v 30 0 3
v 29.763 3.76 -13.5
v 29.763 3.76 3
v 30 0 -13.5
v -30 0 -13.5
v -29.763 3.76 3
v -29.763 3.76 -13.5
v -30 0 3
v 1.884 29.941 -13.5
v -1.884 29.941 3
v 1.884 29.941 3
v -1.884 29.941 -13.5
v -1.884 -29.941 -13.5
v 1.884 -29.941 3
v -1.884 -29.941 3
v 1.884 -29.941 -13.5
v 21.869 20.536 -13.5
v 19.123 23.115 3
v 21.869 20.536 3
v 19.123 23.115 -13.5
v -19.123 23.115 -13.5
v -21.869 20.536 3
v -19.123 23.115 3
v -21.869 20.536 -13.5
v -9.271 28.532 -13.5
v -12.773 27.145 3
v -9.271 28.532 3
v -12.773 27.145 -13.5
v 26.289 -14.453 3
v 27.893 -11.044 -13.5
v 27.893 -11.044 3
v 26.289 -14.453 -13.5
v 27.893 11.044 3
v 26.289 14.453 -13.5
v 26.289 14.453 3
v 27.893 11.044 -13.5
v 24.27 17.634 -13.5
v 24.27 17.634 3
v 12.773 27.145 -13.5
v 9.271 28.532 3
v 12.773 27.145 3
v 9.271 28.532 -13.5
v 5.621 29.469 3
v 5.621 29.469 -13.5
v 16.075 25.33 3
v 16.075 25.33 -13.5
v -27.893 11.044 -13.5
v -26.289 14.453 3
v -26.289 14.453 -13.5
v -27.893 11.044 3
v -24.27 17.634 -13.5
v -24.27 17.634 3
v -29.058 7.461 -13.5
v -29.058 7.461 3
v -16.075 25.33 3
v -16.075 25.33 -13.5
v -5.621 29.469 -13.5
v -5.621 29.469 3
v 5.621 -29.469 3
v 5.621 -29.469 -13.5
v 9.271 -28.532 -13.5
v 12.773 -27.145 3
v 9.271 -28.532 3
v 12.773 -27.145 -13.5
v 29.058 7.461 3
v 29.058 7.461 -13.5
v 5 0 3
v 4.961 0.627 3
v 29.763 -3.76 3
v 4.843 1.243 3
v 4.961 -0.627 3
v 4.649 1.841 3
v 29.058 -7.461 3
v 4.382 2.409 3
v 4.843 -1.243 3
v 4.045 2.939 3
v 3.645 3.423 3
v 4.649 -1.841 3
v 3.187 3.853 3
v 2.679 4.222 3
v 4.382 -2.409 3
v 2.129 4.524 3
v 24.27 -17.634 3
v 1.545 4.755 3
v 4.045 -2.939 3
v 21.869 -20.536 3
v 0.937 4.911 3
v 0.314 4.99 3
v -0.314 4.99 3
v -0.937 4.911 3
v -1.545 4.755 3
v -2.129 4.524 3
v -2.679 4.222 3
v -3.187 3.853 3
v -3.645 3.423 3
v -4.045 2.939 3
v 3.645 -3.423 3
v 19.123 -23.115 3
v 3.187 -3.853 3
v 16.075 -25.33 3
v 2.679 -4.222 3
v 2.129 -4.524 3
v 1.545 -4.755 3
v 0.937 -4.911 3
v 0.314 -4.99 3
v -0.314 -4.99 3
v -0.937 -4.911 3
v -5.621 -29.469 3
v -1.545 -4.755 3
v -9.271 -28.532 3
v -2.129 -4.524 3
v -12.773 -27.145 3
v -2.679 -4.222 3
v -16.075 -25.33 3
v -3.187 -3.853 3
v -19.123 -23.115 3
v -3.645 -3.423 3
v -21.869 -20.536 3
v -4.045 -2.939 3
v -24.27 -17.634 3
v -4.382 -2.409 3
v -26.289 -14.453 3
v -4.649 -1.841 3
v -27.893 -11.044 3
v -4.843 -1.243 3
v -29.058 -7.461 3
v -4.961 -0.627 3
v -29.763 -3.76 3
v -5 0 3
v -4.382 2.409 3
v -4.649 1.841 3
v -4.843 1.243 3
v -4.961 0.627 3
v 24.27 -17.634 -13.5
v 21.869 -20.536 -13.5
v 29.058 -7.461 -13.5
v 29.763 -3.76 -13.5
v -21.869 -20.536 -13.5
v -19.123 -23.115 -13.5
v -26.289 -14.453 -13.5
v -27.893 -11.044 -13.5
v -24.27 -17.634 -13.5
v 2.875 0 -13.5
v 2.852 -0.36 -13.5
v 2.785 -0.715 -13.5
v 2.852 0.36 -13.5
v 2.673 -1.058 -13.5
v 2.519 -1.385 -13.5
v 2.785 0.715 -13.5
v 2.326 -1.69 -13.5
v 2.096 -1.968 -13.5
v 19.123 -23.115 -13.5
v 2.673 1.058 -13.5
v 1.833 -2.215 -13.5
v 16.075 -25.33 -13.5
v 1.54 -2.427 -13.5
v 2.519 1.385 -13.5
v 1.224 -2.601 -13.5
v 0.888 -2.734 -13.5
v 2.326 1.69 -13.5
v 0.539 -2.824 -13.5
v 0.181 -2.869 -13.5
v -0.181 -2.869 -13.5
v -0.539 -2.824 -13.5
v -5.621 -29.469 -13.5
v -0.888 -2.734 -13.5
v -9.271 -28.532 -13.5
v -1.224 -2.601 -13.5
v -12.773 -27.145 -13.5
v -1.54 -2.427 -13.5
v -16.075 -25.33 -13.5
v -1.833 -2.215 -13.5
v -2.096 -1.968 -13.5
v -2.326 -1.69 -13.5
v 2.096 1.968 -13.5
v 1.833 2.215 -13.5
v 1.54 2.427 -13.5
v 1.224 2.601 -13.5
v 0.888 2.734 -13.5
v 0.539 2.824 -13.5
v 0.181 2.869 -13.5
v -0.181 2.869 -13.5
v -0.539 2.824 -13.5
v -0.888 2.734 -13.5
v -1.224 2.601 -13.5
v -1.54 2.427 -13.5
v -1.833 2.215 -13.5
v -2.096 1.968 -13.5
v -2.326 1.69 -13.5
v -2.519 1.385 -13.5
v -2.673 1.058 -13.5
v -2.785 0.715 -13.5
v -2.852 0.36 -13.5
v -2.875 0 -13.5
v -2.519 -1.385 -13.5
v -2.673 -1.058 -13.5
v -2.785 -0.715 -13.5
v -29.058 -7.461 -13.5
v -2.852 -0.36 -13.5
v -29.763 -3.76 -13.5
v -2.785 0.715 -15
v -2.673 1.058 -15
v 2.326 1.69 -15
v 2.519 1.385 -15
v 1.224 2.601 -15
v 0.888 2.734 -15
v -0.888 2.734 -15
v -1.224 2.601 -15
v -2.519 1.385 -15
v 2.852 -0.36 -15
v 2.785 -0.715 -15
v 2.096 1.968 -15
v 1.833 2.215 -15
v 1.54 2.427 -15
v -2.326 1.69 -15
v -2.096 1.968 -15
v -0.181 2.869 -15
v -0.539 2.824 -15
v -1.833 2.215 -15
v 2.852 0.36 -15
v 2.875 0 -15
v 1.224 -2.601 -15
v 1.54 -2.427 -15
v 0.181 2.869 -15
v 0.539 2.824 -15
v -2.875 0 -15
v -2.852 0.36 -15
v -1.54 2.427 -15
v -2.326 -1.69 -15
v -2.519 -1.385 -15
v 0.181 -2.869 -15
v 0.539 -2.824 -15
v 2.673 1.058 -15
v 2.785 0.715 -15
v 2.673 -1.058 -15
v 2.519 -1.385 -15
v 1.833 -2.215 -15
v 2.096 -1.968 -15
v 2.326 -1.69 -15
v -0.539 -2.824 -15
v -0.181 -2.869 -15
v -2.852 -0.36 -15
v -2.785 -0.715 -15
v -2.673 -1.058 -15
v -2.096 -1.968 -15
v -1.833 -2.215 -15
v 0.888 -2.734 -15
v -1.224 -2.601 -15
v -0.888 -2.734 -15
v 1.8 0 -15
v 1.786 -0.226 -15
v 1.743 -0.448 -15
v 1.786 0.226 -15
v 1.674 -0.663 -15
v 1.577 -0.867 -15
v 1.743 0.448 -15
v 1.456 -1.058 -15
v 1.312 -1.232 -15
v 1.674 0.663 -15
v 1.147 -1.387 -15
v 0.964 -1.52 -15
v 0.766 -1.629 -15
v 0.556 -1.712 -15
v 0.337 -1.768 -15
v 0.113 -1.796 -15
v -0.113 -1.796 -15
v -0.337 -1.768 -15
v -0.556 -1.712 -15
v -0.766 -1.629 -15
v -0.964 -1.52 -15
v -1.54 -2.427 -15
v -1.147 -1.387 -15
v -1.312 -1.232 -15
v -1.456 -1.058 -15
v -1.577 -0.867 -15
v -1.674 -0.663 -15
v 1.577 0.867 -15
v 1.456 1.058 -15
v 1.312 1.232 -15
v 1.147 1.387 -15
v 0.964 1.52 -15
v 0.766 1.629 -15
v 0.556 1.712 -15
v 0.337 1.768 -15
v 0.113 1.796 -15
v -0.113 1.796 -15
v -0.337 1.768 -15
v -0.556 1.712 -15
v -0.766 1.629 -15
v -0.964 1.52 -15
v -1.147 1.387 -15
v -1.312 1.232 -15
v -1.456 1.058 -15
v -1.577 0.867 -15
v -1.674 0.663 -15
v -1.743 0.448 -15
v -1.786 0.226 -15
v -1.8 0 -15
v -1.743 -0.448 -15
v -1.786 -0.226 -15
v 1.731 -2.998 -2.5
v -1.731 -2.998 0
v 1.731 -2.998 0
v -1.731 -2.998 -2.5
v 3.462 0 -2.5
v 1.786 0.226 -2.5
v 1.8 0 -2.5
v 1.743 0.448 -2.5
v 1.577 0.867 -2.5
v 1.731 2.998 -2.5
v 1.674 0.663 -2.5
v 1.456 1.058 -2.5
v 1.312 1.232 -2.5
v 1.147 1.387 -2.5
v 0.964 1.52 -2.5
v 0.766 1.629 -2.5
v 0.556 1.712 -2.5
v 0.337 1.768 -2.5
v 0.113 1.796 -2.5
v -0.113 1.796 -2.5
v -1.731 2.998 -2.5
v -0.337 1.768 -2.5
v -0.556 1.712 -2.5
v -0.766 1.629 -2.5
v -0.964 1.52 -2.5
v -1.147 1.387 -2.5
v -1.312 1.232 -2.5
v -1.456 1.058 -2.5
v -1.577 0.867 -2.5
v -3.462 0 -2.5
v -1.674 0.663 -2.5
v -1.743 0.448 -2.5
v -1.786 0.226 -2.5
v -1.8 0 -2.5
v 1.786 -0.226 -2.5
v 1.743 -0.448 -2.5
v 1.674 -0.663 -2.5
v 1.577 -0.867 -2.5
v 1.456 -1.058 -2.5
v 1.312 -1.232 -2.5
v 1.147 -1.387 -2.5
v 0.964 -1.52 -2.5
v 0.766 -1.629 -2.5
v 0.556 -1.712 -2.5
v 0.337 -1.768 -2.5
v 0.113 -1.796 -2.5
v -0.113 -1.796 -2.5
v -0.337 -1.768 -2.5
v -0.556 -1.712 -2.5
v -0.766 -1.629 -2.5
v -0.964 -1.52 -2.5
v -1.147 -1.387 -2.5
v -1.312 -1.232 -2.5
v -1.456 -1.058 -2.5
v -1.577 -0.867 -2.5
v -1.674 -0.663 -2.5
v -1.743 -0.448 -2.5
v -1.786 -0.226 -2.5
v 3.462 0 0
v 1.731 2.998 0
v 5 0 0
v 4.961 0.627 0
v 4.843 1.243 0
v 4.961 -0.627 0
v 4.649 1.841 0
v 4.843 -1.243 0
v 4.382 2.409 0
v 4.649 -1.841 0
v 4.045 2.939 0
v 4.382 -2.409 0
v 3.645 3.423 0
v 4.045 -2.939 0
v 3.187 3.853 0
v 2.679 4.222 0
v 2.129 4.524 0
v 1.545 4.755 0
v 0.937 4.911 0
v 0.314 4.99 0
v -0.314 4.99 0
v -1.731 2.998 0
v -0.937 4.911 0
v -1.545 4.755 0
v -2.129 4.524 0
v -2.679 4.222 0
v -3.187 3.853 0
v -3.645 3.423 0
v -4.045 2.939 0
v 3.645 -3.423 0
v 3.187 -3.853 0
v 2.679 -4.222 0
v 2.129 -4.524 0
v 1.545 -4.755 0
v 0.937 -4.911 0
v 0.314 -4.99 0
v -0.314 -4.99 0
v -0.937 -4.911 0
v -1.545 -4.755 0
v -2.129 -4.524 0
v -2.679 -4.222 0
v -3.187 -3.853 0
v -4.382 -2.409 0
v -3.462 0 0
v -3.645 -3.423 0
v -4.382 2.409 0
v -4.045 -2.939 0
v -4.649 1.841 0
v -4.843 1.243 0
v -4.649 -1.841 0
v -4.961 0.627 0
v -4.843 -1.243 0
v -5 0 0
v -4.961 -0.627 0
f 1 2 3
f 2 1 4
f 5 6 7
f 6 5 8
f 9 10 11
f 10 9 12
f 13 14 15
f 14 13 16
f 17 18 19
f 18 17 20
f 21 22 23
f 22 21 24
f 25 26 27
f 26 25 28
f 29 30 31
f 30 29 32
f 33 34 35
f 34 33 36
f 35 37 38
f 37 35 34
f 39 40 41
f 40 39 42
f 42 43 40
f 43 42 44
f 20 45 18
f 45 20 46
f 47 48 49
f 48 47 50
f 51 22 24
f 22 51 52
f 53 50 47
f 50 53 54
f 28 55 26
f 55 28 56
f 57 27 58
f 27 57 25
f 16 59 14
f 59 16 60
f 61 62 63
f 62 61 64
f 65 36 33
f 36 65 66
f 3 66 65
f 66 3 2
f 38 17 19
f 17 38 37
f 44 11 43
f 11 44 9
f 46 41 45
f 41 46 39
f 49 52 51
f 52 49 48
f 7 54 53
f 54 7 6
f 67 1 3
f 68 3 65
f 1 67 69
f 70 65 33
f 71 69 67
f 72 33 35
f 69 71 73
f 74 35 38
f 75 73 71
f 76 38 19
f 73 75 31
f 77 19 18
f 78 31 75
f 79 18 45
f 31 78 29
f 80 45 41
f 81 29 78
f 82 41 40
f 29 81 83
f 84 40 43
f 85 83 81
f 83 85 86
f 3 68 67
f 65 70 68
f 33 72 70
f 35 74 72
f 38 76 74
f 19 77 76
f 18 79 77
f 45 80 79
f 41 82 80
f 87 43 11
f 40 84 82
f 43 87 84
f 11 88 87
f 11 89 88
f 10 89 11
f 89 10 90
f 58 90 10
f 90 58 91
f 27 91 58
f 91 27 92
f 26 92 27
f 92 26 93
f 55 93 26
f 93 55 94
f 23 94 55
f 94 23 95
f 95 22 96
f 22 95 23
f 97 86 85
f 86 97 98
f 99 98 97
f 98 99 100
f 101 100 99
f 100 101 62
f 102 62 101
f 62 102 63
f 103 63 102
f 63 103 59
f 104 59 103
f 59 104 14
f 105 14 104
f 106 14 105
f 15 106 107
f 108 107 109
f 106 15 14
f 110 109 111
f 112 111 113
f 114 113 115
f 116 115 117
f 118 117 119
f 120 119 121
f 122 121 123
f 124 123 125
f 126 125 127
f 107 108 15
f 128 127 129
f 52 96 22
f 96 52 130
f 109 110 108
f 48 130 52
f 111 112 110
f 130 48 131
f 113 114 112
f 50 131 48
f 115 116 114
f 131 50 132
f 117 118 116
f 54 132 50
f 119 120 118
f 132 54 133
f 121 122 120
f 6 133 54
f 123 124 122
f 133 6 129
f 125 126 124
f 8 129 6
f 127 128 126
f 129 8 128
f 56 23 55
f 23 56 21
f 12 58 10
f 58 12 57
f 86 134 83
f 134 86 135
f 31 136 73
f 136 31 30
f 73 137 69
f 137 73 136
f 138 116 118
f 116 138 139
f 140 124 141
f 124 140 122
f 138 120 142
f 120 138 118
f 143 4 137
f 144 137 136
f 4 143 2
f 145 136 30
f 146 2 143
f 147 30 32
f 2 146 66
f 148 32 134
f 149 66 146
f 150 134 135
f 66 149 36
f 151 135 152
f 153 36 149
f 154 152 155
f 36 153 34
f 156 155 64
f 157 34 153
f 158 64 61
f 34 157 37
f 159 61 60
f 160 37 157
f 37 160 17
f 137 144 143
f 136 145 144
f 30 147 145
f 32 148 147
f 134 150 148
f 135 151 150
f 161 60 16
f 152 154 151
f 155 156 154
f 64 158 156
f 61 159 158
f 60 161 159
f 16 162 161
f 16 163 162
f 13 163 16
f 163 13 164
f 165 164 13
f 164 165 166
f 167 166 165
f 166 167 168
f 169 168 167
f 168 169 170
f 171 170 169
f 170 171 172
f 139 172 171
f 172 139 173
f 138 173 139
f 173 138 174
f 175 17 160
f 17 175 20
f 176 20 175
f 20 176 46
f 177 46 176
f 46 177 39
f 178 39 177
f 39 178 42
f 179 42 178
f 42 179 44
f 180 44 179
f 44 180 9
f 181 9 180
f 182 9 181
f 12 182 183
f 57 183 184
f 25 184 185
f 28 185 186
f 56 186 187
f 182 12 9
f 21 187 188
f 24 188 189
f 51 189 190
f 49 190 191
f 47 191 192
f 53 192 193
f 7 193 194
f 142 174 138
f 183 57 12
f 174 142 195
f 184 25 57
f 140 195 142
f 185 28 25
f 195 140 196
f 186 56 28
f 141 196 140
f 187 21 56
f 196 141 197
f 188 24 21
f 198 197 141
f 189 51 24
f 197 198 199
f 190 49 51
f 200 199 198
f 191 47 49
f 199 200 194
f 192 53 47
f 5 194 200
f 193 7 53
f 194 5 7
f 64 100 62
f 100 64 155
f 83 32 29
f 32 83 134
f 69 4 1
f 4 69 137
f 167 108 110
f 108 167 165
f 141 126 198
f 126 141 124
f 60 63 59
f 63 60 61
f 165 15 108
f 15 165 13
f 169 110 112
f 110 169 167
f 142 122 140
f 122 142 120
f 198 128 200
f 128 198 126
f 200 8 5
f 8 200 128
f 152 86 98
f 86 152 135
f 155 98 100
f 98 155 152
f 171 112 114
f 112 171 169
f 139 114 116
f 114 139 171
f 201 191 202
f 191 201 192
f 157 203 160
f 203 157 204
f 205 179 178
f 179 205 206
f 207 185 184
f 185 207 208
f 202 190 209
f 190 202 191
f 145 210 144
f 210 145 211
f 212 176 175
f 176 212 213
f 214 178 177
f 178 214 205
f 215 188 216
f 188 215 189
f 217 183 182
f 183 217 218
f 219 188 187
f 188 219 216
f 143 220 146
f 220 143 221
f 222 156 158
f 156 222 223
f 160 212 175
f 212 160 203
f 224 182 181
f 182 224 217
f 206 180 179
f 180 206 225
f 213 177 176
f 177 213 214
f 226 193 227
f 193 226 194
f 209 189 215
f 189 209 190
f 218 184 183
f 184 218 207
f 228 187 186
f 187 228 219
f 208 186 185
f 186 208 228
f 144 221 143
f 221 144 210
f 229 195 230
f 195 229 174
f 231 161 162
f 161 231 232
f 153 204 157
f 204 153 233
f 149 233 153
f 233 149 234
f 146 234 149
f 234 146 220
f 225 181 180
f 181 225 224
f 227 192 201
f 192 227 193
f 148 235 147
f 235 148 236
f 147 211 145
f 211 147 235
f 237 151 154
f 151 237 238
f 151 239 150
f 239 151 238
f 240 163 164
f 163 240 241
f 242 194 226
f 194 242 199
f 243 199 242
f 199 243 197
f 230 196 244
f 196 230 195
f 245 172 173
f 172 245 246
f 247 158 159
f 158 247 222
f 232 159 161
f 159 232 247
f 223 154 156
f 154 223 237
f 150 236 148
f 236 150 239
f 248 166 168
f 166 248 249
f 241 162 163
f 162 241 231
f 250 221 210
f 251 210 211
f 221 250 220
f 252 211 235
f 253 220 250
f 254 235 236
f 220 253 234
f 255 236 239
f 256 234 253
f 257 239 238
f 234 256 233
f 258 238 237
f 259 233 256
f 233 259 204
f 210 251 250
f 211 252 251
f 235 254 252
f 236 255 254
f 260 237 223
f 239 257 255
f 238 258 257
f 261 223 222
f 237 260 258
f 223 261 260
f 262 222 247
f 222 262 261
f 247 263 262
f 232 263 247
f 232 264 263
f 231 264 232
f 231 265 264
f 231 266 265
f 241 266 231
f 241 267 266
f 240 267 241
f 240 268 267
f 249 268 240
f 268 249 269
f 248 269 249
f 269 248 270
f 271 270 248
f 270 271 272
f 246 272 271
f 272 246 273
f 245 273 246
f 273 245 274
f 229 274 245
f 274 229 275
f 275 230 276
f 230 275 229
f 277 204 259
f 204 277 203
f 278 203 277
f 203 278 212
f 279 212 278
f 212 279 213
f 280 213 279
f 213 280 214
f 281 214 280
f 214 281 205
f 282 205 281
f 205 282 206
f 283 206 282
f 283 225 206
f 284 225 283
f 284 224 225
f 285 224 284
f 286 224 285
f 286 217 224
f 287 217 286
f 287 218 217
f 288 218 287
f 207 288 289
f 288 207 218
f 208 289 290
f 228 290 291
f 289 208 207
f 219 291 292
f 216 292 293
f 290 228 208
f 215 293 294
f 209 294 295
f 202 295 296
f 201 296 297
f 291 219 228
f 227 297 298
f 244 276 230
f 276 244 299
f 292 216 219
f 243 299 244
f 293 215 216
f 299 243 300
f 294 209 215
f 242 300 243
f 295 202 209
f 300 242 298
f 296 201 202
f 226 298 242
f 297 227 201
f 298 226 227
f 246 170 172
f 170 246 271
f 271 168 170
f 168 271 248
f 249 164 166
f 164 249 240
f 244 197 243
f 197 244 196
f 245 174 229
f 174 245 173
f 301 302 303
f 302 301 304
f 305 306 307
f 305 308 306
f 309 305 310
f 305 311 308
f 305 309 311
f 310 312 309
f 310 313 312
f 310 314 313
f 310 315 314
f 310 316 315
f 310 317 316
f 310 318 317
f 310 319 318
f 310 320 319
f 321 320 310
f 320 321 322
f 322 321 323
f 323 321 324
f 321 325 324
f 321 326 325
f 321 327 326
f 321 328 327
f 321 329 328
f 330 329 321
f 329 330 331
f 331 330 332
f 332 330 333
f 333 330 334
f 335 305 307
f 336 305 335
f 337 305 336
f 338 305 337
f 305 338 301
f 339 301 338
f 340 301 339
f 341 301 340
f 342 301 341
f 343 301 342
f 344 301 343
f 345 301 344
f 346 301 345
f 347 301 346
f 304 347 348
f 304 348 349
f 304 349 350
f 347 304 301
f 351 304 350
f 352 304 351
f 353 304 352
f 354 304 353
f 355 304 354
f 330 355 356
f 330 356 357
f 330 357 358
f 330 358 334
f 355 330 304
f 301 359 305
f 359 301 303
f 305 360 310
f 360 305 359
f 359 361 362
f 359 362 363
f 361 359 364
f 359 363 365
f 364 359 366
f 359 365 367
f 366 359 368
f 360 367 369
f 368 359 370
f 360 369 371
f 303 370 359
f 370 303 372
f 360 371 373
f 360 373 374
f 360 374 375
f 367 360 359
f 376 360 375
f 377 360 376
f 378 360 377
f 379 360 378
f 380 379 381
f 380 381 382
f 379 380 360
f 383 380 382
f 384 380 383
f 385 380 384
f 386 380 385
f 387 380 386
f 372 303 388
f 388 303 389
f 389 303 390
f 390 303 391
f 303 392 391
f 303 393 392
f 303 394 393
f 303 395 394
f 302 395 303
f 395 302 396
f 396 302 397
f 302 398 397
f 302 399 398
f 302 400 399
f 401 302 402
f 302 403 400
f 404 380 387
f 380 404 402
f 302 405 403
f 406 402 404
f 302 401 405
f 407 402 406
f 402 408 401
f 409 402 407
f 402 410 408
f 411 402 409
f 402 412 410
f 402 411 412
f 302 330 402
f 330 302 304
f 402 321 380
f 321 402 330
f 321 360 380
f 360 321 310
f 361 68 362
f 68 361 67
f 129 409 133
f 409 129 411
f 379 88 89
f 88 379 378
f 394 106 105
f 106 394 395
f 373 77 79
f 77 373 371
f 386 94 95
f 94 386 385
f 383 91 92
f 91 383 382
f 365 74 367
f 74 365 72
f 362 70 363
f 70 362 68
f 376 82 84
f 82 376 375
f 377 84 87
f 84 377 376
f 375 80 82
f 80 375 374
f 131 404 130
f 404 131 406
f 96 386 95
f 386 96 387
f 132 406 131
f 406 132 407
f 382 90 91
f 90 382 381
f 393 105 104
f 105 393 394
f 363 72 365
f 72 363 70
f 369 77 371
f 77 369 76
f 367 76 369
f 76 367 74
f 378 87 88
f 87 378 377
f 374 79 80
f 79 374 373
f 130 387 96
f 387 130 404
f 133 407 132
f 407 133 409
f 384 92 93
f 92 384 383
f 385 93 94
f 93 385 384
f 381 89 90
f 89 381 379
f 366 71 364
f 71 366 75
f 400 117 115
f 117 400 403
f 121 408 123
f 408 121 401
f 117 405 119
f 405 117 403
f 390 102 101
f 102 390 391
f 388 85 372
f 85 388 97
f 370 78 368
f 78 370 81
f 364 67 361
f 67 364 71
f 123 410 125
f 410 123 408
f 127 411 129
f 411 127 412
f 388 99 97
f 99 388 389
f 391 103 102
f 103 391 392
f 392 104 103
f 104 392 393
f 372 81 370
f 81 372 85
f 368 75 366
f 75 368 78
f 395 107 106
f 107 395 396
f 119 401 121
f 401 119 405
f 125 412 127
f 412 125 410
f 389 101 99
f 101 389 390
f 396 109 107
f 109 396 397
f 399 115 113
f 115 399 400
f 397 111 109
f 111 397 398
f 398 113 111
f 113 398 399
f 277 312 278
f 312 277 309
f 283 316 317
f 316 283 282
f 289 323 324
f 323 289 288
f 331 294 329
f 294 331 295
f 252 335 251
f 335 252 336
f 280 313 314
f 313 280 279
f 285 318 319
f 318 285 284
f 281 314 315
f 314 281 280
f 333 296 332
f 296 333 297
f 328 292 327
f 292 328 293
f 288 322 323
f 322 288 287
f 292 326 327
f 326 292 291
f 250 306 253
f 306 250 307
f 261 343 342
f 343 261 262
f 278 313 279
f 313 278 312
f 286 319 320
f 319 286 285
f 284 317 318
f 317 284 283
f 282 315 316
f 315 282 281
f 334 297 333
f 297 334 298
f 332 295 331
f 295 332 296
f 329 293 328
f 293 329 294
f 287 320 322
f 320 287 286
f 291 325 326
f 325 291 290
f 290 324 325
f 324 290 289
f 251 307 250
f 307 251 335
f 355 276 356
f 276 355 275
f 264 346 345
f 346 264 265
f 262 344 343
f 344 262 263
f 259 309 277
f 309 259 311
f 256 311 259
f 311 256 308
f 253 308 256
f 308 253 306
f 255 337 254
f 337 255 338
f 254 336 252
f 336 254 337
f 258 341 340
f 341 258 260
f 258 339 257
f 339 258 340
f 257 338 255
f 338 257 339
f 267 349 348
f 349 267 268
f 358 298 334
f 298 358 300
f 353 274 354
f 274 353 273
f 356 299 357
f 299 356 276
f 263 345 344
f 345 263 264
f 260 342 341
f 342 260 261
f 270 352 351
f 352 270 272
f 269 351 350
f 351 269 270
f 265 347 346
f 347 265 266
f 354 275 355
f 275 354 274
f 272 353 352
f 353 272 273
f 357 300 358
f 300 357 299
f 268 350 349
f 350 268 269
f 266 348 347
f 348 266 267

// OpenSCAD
$fn = 50;

difference() {
	union() {
		translate(v = [0, 0, -13.5]) {
			cylinder(h = 16.5, r = 30.0);
		}
		#translate(v = [0, 0, -15.0]) {
			cylinder(h = 15, r = 2.875);
		}
	}
	union() {
		translate(v = [0, 0, 0]) {
			rotate(a = [0, 0, 0]) {
				difference() {
					union() {
						translate(v = [0, 0, -2.5]) {
							linear_extrude(height = 2.5) {
								polygon(points = [[3.4619999999999997, 0.0], [1.7310000000000003, 2.9981799479017264], [-1.7309999999999992, 2.9981799479017264], [-3.4619999999999997, 4.2397272186481365e-16], [-1.7310000000000014, -2.998179947901726], [1.7309999999999977, -2.9981799479017277]]);
							}
						}
					}
					union();
				}
			}
		}
		#cylinder(h = 3, r = 5.0);
		#translate(v = [0, 0, -100.0]) {
			cylinder(h = 200, r = 1.8);
		}
	}
}
